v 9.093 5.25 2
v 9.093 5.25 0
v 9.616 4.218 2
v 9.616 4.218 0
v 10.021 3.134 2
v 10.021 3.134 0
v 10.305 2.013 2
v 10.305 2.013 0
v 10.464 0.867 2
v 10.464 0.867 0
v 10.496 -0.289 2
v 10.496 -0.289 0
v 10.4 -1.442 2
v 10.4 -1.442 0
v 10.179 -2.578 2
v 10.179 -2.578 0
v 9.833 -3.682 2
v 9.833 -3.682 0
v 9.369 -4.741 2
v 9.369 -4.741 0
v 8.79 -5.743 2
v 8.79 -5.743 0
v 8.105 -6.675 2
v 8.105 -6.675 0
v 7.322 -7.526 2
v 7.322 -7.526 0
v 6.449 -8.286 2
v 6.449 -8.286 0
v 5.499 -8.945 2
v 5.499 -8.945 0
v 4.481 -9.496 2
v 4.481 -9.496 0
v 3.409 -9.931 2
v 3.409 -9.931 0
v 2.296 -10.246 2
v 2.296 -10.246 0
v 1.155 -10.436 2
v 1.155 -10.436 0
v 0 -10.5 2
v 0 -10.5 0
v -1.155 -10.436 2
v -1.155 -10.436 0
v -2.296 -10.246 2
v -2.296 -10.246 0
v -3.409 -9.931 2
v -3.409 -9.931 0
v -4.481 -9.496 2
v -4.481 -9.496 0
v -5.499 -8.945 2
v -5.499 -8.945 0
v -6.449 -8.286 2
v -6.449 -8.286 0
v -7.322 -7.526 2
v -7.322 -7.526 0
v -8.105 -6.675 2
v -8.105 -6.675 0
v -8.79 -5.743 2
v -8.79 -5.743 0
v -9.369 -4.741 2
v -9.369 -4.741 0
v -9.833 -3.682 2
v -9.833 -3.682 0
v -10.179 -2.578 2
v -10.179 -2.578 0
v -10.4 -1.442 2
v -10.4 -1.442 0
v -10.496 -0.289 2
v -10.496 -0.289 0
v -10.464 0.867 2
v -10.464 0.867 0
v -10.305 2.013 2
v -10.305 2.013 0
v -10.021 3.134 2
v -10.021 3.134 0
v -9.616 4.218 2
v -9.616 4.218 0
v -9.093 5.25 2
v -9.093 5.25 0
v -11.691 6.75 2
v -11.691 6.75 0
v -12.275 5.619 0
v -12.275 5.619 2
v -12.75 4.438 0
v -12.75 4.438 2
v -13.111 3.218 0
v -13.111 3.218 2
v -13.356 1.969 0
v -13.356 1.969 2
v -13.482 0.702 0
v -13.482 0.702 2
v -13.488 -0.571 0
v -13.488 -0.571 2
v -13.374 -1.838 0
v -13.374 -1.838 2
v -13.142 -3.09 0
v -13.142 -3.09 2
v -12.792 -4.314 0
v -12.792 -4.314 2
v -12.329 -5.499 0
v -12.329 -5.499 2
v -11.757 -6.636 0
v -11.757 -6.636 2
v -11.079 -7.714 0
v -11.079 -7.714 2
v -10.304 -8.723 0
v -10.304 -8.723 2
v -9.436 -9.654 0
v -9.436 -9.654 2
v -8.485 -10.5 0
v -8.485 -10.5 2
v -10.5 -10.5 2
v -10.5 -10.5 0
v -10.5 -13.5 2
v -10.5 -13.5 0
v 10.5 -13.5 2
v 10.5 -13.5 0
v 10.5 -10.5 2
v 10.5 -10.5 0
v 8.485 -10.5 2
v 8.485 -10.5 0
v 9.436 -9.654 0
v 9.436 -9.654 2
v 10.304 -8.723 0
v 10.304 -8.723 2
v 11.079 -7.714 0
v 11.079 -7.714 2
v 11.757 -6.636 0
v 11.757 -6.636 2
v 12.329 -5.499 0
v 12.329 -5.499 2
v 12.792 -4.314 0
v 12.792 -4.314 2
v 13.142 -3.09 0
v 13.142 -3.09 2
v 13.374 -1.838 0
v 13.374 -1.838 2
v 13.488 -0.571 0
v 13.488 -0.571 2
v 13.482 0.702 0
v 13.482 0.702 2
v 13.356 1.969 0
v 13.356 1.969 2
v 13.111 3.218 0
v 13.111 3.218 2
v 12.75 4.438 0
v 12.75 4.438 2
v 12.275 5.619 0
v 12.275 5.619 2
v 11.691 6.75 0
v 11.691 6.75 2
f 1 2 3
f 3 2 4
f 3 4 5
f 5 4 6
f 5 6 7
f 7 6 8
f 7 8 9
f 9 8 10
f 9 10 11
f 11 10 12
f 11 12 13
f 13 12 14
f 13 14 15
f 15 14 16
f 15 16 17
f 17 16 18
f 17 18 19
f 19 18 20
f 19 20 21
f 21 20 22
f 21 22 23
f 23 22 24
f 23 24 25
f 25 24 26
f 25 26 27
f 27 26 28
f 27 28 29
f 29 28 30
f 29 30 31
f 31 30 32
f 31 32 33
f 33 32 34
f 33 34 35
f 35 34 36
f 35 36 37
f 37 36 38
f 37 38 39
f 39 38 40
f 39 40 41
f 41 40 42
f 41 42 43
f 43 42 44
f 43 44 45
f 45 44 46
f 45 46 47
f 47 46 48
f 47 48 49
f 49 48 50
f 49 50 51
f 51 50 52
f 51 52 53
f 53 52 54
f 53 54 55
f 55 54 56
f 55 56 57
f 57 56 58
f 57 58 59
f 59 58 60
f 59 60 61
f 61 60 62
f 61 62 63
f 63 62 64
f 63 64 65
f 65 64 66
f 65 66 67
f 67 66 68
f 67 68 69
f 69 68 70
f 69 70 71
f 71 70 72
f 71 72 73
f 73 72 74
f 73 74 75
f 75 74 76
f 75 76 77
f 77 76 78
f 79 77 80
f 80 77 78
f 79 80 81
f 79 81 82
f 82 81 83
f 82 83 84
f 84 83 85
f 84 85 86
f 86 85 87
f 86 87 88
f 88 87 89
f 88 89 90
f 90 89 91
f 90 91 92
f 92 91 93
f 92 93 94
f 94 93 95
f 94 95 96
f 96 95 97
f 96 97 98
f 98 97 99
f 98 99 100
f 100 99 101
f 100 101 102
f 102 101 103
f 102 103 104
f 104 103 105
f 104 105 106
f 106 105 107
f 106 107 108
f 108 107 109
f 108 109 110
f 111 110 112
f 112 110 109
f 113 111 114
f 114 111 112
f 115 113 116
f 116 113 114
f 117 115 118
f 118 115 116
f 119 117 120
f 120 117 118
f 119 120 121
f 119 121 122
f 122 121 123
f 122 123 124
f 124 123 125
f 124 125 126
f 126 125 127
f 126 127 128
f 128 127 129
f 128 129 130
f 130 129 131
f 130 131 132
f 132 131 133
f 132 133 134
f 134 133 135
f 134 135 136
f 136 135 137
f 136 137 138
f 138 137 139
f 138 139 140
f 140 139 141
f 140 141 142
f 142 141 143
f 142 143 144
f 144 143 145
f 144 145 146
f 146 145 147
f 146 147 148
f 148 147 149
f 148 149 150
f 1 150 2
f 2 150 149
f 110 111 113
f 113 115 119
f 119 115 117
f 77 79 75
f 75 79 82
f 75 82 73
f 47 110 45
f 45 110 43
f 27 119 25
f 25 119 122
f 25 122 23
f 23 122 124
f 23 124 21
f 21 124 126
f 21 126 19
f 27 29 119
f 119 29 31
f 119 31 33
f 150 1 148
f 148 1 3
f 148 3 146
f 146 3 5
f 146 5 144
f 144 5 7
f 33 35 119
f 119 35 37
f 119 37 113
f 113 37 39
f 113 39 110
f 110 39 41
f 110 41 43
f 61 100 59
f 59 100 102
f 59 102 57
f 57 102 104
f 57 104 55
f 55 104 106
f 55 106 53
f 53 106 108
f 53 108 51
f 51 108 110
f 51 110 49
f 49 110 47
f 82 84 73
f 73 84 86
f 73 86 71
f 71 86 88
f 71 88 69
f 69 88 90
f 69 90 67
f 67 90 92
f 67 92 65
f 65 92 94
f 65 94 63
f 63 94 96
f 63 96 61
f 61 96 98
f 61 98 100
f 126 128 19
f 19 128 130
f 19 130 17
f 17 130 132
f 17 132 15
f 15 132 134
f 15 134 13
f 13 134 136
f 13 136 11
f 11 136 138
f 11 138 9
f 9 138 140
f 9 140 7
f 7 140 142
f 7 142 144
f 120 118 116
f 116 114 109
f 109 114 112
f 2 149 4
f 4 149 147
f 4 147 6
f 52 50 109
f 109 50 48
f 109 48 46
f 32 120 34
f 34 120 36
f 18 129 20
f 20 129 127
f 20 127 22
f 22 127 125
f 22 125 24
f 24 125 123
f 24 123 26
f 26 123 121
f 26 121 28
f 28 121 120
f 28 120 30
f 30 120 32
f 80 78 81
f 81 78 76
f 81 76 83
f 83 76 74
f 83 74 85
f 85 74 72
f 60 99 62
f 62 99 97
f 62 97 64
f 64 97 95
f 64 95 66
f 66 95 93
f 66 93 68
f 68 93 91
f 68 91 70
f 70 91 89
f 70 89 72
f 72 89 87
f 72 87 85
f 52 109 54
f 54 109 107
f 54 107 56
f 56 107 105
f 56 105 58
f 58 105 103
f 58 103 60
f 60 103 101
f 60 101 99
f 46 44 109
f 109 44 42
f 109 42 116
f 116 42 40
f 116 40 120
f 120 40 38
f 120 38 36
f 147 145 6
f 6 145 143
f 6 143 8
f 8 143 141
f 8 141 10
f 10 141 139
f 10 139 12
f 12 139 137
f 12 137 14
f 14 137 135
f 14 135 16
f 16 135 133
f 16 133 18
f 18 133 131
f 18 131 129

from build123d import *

# Parameters (mm, degrees)
BOSS_EXTRUDE1_DEPTH = 2


with BuildPart() as part:
    # Sketch1 → Boss-Extrude1 (new body)
    with BuildSketch(Plane.XY):
        with BuildLine():
            Line((-9.09326674, 5.25), (-11.691342951, 6.75))
            ThreePointArc((-11.691342951, 6.75), (-13.272703843, -2.466846714), (-8.485281374, -10.5))
            Line((-8.485281374, -10.5), (-10.5, -10.5))
            Line((-10.5, -10.5), (-10.5, -13.5))
            Line((-10.5, -13.5), (10.5, -13.5))
            Line((10.5, -13.5), (10.5, -10.5))
            Line((10.5, -10.5), (8.485281374, -10.5))
            ThreePointArc((8.485281374, -10.5), (13.272703843, -2.466846714), (11.691342951, 6.75))
            Line((11.691342951, 6.75), (9.09326674, 5.25))
            ThreePointArc((9.09326674, 5.25), (0, -10.5), (-9.09326674, 5.25))
        make_face()
    extrude(amount=BOSS_EXTRUDE1_DEPTH)


solid = part.part
